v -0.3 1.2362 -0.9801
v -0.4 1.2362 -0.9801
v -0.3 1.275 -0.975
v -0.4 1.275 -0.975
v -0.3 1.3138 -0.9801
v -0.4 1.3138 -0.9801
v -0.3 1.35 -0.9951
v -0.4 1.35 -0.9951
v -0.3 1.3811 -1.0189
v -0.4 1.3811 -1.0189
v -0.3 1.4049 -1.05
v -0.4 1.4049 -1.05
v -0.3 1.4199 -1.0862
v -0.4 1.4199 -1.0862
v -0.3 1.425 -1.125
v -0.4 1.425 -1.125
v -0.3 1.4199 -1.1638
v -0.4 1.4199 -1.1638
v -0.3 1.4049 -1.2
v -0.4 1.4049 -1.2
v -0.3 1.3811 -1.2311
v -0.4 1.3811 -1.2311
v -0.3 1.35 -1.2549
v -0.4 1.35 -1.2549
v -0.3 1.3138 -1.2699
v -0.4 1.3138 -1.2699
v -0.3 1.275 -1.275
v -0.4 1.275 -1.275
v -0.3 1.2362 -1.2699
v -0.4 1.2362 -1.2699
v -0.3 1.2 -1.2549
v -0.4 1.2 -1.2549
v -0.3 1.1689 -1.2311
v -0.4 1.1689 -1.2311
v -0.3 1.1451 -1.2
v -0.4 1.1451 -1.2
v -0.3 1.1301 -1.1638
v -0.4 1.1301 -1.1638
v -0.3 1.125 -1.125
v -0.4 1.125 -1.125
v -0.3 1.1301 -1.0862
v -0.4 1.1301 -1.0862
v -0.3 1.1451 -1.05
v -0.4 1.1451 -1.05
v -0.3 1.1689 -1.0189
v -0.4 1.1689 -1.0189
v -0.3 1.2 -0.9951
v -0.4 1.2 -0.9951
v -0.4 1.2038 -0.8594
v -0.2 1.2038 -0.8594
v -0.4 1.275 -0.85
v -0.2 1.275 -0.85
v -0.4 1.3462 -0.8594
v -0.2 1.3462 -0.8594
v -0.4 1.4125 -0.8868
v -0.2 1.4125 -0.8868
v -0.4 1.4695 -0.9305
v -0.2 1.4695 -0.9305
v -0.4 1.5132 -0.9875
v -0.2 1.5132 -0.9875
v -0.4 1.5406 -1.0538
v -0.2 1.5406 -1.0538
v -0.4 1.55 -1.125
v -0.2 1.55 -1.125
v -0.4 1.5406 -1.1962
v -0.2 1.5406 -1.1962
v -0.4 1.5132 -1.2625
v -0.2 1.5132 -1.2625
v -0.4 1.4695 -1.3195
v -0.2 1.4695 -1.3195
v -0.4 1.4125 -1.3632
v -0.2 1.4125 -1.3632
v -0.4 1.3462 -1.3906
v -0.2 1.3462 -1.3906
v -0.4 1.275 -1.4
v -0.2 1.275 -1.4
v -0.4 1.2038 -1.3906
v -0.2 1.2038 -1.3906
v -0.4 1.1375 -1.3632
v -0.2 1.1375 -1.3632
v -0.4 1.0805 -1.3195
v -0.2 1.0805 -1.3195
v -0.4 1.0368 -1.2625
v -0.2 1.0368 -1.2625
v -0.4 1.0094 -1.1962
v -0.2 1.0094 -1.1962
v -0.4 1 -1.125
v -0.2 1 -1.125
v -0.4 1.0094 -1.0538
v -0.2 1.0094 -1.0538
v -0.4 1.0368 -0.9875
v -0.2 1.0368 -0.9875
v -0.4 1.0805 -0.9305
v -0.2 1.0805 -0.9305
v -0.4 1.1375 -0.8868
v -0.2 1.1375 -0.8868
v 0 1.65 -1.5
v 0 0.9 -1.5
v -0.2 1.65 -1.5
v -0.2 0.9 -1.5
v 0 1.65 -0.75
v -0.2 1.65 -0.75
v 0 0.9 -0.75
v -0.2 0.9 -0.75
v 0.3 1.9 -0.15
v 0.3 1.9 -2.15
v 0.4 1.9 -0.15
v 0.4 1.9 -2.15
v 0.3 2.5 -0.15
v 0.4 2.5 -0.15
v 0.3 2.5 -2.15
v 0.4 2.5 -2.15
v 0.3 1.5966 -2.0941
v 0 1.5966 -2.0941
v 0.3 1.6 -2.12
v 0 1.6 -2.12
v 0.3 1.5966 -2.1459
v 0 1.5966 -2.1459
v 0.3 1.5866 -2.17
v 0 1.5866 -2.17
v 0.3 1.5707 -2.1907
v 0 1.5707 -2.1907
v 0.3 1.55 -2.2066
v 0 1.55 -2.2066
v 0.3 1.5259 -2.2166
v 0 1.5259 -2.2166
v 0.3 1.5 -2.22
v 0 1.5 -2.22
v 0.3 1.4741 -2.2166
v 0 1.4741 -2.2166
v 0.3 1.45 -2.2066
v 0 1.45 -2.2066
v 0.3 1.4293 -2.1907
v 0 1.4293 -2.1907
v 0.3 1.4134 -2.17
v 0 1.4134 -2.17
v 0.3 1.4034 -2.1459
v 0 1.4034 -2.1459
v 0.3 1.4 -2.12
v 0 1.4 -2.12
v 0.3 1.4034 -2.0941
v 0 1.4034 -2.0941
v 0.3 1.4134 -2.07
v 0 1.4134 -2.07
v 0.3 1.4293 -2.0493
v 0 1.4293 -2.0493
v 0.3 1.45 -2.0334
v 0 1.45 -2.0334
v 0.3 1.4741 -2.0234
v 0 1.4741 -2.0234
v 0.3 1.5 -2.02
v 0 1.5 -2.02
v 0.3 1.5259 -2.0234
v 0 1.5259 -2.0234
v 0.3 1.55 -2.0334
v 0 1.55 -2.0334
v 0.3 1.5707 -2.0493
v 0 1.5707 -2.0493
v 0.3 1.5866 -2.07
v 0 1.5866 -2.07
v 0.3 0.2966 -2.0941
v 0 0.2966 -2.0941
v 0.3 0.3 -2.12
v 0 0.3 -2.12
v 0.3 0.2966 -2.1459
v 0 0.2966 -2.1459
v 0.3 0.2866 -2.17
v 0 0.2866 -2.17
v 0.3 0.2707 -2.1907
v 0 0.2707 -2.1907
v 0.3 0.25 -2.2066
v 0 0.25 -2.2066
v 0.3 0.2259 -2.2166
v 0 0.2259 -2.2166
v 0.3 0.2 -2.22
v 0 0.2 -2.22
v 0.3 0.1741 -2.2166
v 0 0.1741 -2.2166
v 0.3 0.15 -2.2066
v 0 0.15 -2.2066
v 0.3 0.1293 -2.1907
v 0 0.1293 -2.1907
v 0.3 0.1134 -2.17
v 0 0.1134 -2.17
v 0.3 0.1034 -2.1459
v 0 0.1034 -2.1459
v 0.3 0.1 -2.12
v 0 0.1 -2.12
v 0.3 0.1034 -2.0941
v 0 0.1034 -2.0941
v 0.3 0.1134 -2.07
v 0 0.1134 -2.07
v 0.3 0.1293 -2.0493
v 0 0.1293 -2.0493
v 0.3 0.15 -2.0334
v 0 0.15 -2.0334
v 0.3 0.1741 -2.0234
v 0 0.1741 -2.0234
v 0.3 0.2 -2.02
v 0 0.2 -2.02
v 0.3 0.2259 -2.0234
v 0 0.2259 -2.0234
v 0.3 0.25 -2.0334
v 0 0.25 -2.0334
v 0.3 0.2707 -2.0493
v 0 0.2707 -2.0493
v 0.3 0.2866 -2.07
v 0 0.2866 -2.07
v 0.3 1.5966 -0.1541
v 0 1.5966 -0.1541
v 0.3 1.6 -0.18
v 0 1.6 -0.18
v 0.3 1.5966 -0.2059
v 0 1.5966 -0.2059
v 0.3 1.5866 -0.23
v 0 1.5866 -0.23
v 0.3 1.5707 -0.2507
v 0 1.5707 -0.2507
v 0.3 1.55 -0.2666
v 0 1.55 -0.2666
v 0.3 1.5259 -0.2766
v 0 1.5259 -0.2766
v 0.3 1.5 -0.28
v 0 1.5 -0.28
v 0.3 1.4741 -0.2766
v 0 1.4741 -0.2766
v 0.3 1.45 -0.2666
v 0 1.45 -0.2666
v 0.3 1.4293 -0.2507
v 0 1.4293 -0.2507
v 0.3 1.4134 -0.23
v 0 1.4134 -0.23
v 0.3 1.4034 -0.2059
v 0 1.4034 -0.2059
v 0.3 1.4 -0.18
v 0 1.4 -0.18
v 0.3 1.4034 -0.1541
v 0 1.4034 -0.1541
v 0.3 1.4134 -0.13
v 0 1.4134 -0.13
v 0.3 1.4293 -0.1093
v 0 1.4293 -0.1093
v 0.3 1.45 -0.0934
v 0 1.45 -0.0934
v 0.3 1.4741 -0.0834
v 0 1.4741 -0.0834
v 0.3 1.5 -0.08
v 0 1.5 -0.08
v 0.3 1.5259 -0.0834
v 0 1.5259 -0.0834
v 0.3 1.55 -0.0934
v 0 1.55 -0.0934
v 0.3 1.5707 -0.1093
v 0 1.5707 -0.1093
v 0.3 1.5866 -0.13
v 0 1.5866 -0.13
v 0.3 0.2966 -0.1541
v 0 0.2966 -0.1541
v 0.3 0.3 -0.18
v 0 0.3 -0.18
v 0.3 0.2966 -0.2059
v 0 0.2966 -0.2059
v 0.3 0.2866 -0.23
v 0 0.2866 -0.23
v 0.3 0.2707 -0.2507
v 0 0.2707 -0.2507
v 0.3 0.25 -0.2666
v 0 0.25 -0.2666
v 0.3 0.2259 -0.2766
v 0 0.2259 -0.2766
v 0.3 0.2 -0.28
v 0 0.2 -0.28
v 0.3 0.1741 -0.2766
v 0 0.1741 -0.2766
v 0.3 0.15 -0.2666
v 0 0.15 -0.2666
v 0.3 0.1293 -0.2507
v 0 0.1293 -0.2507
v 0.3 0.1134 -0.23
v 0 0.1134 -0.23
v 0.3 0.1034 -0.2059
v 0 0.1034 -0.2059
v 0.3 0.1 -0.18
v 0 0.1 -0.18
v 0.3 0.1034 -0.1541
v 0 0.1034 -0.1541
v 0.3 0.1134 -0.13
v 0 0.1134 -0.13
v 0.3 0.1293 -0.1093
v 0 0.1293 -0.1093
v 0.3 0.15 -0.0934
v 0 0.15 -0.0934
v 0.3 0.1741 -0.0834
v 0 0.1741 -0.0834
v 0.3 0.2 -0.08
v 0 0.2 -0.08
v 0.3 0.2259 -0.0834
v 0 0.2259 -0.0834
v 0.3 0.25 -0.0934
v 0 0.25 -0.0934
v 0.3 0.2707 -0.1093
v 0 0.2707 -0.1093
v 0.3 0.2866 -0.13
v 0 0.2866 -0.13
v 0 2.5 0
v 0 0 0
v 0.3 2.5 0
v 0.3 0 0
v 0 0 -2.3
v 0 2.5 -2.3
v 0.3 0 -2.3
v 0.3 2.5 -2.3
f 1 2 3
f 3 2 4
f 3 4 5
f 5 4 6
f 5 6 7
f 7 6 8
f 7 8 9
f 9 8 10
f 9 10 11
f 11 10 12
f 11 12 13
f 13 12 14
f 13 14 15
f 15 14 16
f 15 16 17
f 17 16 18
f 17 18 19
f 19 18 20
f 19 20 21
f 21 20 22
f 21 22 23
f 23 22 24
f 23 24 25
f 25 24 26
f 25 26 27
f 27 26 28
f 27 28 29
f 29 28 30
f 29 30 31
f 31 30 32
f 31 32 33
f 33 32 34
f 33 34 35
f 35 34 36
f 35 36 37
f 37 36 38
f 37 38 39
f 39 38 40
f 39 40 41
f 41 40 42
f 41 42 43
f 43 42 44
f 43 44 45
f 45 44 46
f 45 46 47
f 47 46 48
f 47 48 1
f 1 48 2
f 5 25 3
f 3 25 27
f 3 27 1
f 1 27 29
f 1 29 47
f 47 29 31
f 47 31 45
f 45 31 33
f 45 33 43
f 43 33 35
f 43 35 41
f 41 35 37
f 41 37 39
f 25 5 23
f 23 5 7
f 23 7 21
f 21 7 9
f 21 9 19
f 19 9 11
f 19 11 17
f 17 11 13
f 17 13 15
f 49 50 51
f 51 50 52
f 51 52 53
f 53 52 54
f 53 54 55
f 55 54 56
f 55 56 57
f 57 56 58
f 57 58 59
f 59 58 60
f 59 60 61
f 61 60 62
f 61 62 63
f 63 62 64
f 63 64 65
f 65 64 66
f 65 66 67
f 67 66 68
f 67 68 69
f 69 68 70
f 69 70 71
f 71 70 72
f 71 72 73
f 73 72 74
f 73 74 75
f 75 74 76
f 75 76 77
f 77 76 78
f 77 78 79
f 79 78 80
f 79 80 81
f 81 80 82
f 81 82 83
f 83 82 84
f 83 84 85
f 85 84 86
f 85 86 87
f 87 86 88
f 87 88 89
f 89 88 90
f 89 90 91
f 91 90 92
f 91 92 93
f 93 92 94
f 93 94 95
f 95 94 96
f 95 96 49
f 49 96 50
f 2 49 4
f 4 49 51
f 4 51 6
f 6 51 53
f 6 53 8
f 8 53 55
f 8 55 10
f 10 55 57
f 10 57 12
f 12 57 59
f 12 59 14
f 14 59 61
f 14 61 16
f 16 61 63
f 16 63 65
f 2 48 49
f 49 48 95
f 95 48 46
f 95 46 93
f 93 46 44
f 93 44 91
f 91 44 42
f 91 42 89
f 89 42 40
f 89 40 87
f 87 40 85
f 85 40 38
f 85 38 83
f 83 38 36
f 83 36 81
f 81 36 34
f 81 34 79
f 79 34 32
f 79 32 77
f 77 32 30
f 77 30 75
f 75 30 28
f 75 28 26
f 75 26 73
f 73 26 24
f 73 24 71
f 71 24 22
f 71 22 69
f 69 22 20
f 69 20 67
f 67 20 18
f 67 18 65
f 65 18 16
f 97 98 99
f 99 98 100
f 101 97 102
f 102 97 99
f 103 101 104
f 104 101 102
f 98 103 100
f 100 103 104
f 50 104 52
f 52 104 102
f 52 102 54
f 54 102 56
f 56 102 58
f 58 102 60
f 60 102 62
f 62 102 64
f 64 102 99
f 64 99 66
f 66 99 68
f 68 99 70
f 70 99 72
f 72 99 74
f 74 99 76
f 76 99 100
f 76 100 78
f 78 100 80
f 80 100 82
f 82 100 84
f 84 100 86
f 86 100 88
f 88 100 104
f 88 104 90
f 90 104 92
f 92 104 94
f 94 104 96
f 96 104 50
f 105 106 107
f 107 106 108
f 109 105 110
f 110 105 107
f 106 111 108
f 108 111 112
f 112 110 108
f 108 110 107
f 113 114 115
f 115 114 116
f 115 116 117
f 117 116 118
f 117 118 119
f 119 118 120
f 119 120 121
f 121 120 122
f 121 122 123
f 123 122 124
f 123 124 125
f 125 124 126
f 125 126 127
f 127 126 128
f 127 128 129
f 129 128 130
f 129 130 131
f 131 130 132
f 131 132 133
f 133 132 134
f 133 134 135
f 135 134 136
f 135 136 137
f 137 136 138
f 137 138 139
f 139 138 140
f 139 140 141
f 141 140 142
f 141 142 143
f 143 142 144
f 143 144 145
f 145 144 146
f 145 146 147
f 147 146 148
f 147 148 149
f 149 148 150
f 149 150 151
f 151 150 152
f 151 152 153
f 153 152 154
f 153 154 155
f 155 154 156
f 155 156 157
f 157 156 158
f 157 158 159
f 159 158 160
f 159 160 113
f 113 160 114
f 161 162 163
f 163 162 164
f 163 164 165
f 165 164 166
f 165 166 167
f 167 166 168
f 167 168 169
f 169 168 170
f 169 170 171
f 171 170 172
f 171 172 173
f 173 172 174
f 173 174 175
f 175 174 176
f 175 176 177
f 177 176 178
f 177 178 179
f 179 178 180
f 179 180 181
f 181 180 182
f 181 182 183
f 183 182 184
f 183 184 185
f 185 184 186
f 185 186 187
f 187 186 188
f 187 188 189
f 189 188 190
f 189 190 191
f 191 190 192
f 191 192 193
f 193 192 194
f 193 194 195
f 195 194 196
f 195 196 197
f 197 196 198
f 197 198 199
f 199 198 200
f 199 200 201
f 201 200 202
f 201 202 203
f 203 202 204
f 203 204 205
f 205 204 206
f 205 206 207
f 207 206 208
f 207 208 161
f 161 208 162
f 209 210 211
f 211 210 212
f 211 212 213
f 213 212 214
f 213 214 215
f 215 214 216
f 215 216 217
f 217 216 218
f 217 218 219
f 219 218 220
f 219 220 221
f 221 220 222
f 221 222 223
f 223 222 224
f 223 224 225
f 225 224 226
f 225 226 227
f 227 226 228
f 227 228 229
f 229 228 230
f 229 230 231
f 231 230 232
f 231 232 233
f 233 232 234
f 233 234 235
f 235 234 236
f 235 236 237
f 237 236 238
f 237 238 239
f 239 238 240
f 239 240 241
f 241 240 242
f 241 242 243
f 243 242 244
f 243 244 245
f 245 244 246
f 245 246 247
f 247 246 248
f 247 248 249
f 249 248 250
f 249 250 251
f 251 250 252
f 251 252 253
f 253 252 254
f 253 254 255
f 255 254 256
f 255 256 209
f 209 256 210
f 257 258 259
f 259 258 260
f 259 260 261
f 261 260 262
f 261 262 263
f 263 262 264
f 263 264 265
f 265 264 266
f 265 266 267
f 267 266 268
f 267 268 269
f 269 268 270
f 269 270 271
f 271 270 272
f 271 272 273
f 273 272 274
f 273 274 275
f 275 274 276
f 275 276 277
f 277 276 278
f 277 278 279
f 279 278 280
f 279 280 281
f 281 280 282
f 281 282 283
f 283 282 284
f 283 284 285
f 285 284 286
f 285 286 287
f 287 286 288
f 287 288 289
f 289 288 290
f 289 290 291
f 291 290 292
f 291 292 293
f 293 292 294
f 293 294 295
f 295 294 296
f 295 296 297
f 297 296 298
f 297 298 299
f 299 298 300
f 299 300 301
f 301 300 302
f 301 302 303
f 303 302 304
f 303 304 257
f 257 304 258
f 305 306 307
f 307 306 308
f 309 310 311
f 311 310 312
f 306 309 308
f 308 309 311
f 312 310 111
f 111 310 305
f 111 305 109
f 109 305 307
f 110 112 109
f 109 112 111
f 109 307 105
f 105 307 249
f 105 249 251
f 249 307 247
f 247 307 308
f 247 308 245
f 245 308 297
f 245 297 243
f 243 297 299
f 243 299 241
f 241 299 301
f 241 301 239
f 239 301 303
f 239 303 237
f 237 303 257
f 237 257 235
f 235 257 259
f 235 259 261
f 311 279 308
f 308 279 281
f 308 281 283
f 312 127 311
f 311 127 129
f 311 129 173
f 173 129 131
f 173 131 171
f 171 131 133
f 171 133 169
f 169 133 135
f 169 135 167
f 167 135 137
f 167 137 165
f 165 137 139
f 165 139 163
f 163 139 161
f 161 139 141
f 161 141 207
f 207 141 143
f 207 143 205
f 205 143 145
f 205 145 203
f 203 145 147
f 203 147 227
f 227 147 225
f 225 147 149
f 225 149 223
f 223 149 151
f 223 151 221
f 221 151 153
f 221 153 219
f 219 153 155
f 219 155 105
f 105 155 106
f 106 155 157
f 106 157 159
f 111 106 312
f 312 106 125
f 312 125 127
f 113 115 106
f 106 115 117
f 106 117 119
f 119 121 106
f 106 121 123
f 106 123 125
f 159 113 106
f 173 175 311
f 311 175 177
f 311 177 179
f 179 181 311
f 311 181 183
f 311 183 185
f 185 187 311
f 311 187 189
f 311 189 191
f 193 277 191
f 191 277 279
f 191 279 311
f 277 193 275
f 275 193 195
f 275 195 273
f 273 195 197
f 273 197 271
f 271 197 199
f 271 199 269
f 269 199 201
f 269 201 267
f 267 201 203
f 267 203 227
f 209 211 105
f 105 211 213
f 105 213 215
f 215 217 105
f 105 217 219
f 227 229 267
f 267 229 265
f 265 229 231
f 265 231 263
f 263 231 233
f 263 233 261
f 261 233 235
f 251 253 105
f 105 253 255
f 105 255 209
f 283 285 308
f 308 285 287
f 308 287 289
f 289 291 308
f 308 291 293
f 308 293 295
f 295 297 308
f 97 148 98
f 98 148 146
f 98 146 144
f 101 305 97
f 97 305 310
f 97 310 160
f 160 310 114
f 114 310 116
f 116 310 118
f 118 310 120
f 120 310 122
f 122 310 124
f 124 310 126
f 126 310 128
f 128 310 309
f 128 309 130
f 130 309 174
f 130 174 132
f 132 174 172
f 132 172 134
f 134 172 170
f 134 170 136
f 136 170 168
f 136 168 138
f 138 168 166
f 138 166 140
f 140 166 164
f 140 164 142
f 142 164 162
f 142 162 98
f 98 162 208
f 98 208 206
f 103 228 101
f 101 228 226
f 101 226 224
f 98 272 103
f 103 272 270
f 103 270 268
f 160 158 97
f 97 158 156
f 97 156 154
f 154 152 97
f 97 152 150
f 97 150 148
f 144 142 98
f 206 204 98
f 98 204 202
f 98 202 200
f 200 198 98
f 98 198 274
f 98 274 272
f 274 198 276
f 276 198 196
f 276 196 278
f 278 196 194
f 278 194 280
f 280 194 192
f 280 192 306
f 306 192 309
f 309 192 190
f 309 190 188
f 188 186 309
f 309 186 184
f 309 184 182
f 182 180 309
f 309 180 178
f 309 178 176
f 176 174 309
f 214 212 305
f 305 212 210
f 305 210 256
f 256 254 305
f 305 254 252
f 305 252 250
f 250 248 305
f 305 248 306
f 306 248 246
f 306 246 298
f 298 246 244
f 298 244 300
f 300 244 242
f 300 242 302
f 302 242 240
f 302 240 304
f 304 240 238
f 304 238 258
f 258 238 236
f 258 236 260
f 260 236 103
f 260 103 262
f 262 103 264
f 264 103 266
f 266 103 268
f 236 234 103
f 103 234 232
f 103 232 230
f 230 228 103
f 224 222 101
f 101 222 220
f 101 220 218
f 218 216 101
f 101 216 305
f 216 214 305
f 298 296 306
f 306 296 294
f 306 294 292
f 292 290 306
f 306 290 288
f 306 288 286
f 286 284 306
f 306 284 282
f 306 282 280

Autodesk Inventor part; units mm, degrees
ref_plane "YZ Plane" through (0, 0, 0) normal (1, 0, 0) x (0, 1, 0)
ref_plane "XZ Plane" through (0, 0, 0) normal (0, 1, 0) x (-1, 0, 0)
ref_plane "XY Plane" through (0, 0, 0) normal (0, 0, 1) x (1, 0, 0)
sketch "Boceto1" plane through (0, 0, 0) normal (1, 0, 0) x (0, 1, 0)
  line L0 (0, 0) -> (0, -2.3)
  line L1 (0, -2.3) -> (2.5, -2.3)
  line L2 (2.5, -2.3) -> (2.5, 0)
  line L3 (2.5, 0) -> (0, 0)
  line L4 (0, 0) -> (0.2, 0)
  line L5 (0.2, 0) -> (0.2, -0.18)
  circle A0 centre (0.2, -0.18) radius 0.1
  line L6 (0, 0) -> (1.5, 0)
  circle A1 centre (1.5, -0.18) radius 0.1
  circle A2 centre (0.2, -2.12) radius 0.1
  circle A3 centre (1.5, -2.12) radius 0.1
  line L7 (2.5, -0.15) -> (1.9, -0.15)
  line L8 (1.9, -0.15) -> (1.9, -2.15)
  line L9 (1.9, -2.15) -> (2.5, -2.15)
  dimension "d0" = 2.3
  dimension "d1" = 2.5
  dimension "d2" = 0.2
  dimension "d3" = 0.18
  dimension "d4" = 0.2
  dimension "d5" = 1.5
  dimension "d6" = 0.2
  dimension "d8" = 0.6
extrude "Extrusión1" add sketch "Boceto1" along normal blind 0.3
sketch "Boceto2" plane through (0.3, 0, 0) normal (1, 0, 0) x (0, 0, -1)
  line L0 (0, 0) -> (2.3, 0)
  line L1 (2.3, 0) -> (2.3, 2.5)
  line L2 (2.3, 2.5) -> (0, 2.5)
  line L3 (0, 2.5) -> (0, 0)
  line L4 (0, 0) -> (0, 0.2)
  line L5 (0, 0.2) -> (0.18, 0.2)
  circle A0 centre (0.18, 0.2) radius 0.1
  line L6 (0, 0) -> (0, 1.5)
  circle A1 centre (0.18, 1.5) radius 0.1
  circle A2 centre (2.12, 0.2) radius 0.1
  circle A3 centre (2.12, 1.5) radius 0.1
  line L7 (0.15, 2.5) -> (0.15, 1.9)
  line L8 (0.15, 1.9) -> (2.15, 1.9)
  line L9 (2.15, 1.9) -> (2.15, 2.5)
  line L10 (0, 0) -> (2.3, 0)
  line L11 (2.3, 0) -> (2.3, 2.5)
  line L12 (2.3, 2.5) -> (0, 2.5)
  line L13 (0, 2.5) -> (0, 0)
  line L14 (0, 0) -> (0, 0.2)
  line L15 (0, 0.2) -> (0.18, 0.2)
  circle A4 centre (0.18, 0.2) radius 0.1
  line L16 (0, 0) -> (0, 1.5)
  circle A5 centre (0.18, 1.5) radius 0.1
  circle A6 centre (2.12, 0.2) radius 0.1
  circle A7 centre (2.12, 1.5) radius 0.1
  line L17 (0.15, 2.5) -> (0.15, 1.9)
  line L18 (0.15, 1.9) -> (2.15, 1.9)
  line L19 (2.15, 1.9) -> (2.15, 2.5)
  dimension "d12" = 2.3
  dimension "d13" = 2.5
  dimension "d14" = 0.2
  dimension "d15" = 0.18
  dimension "d16" = 0.2
  dimension "d17" = 1.5
  dimension "d18" = 0.2
  dimension "d19" = 0.6
  dimension "d20" = 2.3
  dimension "d21" = 2.5
  dimension "d22" = 0.2
  dimension "d23" = 0.18
  dimension "d24" = 0.2
  dimension "d25" = 1.5
  dimension "d26" = 0.2
  dimension "d27" = 0.6
extrude "Extrusión2" add sketch "Boceto2" along normal blind 0.1 contours L9 L8 L7 L2
sketch "Boceto3" plane through (0, 0, 0) normal (-1, 0, 0) x (0, 0, 1)
  line L0 (0, 0) -> (-2.3, 0) projected
  line L1 (-2.3, 0) -> (-1.5, 0)
  line L2 (-1.5, 0) -> (-1.5, 0.9)
  line L3 (-1.5, 0.9) -> (-0.75, 0.9)
  line L4 (-0.75, 0.9) -> (-0.75, 1.65)
  line L5 (-0.75, 1.65) -> (-1.5, 1.65)
  line L6 (-1.5, 1.65) -> (-1.5, 0.9)
  circle A0 centre (-1.125, 1.275) radius 0.275
  dimension "d30" = 0.8
  dimension "d31" = 0.9
  dimension "d32" = 0.75
  dimension "d33" = 0.75
  dimension "d34" = 0.75
  dimension "d35" = 0.55
extrude "Extrusión3" add sketch "Boceto3" along normal blind 0.2 contours L6 L5 L4 L3 | A0
sketch "Boceto4" plane through (-0.2, 0, 0) normal (-1, 0, 0) x (0, 0, 1)
  line L0 (-1.5, 0) -> (-1.5, 0.9)
  line L1 (-1.5, 0.9) -> (-0.75, 0.9)
  line L2 (-0.75, 0.9) -> (-0.75, 1.65)
  line L3 (-0.75, 1.65) -> (-1.5, 1.65)
  line L4 (-1.5, 1.65) -> (-1.5, 0.9)
  circle A0 centre (-1.125, 1.275) radius 0.275
  point P0 (0, 0)
  dimension "d38" = 0.9
  dimension "d39" = 0.75
  dimension "d40" = 0.75
  dimension "d41" = 0.75
  dimension "d42" = 0.55
extrude "Extrusión4" add sketch "Boceto4" along normal blind 0.2 contours A0
sketch "Boceto5" plane through (-0.4, 1.275, -1.125) normal (-1, 0, 0) x (0, 0, 1)
  circle A0 centre (0, 0) radius 0.275 projected
  circle A1 centre (0, 0) radius 0.15
  point P0 (1.125, -1.275)
  dimension "d45" = 0.125
extrude "Extrusión5" cut sketch "Boceto5" against normal blind 0.1 contours A1
properties part number "camera"
